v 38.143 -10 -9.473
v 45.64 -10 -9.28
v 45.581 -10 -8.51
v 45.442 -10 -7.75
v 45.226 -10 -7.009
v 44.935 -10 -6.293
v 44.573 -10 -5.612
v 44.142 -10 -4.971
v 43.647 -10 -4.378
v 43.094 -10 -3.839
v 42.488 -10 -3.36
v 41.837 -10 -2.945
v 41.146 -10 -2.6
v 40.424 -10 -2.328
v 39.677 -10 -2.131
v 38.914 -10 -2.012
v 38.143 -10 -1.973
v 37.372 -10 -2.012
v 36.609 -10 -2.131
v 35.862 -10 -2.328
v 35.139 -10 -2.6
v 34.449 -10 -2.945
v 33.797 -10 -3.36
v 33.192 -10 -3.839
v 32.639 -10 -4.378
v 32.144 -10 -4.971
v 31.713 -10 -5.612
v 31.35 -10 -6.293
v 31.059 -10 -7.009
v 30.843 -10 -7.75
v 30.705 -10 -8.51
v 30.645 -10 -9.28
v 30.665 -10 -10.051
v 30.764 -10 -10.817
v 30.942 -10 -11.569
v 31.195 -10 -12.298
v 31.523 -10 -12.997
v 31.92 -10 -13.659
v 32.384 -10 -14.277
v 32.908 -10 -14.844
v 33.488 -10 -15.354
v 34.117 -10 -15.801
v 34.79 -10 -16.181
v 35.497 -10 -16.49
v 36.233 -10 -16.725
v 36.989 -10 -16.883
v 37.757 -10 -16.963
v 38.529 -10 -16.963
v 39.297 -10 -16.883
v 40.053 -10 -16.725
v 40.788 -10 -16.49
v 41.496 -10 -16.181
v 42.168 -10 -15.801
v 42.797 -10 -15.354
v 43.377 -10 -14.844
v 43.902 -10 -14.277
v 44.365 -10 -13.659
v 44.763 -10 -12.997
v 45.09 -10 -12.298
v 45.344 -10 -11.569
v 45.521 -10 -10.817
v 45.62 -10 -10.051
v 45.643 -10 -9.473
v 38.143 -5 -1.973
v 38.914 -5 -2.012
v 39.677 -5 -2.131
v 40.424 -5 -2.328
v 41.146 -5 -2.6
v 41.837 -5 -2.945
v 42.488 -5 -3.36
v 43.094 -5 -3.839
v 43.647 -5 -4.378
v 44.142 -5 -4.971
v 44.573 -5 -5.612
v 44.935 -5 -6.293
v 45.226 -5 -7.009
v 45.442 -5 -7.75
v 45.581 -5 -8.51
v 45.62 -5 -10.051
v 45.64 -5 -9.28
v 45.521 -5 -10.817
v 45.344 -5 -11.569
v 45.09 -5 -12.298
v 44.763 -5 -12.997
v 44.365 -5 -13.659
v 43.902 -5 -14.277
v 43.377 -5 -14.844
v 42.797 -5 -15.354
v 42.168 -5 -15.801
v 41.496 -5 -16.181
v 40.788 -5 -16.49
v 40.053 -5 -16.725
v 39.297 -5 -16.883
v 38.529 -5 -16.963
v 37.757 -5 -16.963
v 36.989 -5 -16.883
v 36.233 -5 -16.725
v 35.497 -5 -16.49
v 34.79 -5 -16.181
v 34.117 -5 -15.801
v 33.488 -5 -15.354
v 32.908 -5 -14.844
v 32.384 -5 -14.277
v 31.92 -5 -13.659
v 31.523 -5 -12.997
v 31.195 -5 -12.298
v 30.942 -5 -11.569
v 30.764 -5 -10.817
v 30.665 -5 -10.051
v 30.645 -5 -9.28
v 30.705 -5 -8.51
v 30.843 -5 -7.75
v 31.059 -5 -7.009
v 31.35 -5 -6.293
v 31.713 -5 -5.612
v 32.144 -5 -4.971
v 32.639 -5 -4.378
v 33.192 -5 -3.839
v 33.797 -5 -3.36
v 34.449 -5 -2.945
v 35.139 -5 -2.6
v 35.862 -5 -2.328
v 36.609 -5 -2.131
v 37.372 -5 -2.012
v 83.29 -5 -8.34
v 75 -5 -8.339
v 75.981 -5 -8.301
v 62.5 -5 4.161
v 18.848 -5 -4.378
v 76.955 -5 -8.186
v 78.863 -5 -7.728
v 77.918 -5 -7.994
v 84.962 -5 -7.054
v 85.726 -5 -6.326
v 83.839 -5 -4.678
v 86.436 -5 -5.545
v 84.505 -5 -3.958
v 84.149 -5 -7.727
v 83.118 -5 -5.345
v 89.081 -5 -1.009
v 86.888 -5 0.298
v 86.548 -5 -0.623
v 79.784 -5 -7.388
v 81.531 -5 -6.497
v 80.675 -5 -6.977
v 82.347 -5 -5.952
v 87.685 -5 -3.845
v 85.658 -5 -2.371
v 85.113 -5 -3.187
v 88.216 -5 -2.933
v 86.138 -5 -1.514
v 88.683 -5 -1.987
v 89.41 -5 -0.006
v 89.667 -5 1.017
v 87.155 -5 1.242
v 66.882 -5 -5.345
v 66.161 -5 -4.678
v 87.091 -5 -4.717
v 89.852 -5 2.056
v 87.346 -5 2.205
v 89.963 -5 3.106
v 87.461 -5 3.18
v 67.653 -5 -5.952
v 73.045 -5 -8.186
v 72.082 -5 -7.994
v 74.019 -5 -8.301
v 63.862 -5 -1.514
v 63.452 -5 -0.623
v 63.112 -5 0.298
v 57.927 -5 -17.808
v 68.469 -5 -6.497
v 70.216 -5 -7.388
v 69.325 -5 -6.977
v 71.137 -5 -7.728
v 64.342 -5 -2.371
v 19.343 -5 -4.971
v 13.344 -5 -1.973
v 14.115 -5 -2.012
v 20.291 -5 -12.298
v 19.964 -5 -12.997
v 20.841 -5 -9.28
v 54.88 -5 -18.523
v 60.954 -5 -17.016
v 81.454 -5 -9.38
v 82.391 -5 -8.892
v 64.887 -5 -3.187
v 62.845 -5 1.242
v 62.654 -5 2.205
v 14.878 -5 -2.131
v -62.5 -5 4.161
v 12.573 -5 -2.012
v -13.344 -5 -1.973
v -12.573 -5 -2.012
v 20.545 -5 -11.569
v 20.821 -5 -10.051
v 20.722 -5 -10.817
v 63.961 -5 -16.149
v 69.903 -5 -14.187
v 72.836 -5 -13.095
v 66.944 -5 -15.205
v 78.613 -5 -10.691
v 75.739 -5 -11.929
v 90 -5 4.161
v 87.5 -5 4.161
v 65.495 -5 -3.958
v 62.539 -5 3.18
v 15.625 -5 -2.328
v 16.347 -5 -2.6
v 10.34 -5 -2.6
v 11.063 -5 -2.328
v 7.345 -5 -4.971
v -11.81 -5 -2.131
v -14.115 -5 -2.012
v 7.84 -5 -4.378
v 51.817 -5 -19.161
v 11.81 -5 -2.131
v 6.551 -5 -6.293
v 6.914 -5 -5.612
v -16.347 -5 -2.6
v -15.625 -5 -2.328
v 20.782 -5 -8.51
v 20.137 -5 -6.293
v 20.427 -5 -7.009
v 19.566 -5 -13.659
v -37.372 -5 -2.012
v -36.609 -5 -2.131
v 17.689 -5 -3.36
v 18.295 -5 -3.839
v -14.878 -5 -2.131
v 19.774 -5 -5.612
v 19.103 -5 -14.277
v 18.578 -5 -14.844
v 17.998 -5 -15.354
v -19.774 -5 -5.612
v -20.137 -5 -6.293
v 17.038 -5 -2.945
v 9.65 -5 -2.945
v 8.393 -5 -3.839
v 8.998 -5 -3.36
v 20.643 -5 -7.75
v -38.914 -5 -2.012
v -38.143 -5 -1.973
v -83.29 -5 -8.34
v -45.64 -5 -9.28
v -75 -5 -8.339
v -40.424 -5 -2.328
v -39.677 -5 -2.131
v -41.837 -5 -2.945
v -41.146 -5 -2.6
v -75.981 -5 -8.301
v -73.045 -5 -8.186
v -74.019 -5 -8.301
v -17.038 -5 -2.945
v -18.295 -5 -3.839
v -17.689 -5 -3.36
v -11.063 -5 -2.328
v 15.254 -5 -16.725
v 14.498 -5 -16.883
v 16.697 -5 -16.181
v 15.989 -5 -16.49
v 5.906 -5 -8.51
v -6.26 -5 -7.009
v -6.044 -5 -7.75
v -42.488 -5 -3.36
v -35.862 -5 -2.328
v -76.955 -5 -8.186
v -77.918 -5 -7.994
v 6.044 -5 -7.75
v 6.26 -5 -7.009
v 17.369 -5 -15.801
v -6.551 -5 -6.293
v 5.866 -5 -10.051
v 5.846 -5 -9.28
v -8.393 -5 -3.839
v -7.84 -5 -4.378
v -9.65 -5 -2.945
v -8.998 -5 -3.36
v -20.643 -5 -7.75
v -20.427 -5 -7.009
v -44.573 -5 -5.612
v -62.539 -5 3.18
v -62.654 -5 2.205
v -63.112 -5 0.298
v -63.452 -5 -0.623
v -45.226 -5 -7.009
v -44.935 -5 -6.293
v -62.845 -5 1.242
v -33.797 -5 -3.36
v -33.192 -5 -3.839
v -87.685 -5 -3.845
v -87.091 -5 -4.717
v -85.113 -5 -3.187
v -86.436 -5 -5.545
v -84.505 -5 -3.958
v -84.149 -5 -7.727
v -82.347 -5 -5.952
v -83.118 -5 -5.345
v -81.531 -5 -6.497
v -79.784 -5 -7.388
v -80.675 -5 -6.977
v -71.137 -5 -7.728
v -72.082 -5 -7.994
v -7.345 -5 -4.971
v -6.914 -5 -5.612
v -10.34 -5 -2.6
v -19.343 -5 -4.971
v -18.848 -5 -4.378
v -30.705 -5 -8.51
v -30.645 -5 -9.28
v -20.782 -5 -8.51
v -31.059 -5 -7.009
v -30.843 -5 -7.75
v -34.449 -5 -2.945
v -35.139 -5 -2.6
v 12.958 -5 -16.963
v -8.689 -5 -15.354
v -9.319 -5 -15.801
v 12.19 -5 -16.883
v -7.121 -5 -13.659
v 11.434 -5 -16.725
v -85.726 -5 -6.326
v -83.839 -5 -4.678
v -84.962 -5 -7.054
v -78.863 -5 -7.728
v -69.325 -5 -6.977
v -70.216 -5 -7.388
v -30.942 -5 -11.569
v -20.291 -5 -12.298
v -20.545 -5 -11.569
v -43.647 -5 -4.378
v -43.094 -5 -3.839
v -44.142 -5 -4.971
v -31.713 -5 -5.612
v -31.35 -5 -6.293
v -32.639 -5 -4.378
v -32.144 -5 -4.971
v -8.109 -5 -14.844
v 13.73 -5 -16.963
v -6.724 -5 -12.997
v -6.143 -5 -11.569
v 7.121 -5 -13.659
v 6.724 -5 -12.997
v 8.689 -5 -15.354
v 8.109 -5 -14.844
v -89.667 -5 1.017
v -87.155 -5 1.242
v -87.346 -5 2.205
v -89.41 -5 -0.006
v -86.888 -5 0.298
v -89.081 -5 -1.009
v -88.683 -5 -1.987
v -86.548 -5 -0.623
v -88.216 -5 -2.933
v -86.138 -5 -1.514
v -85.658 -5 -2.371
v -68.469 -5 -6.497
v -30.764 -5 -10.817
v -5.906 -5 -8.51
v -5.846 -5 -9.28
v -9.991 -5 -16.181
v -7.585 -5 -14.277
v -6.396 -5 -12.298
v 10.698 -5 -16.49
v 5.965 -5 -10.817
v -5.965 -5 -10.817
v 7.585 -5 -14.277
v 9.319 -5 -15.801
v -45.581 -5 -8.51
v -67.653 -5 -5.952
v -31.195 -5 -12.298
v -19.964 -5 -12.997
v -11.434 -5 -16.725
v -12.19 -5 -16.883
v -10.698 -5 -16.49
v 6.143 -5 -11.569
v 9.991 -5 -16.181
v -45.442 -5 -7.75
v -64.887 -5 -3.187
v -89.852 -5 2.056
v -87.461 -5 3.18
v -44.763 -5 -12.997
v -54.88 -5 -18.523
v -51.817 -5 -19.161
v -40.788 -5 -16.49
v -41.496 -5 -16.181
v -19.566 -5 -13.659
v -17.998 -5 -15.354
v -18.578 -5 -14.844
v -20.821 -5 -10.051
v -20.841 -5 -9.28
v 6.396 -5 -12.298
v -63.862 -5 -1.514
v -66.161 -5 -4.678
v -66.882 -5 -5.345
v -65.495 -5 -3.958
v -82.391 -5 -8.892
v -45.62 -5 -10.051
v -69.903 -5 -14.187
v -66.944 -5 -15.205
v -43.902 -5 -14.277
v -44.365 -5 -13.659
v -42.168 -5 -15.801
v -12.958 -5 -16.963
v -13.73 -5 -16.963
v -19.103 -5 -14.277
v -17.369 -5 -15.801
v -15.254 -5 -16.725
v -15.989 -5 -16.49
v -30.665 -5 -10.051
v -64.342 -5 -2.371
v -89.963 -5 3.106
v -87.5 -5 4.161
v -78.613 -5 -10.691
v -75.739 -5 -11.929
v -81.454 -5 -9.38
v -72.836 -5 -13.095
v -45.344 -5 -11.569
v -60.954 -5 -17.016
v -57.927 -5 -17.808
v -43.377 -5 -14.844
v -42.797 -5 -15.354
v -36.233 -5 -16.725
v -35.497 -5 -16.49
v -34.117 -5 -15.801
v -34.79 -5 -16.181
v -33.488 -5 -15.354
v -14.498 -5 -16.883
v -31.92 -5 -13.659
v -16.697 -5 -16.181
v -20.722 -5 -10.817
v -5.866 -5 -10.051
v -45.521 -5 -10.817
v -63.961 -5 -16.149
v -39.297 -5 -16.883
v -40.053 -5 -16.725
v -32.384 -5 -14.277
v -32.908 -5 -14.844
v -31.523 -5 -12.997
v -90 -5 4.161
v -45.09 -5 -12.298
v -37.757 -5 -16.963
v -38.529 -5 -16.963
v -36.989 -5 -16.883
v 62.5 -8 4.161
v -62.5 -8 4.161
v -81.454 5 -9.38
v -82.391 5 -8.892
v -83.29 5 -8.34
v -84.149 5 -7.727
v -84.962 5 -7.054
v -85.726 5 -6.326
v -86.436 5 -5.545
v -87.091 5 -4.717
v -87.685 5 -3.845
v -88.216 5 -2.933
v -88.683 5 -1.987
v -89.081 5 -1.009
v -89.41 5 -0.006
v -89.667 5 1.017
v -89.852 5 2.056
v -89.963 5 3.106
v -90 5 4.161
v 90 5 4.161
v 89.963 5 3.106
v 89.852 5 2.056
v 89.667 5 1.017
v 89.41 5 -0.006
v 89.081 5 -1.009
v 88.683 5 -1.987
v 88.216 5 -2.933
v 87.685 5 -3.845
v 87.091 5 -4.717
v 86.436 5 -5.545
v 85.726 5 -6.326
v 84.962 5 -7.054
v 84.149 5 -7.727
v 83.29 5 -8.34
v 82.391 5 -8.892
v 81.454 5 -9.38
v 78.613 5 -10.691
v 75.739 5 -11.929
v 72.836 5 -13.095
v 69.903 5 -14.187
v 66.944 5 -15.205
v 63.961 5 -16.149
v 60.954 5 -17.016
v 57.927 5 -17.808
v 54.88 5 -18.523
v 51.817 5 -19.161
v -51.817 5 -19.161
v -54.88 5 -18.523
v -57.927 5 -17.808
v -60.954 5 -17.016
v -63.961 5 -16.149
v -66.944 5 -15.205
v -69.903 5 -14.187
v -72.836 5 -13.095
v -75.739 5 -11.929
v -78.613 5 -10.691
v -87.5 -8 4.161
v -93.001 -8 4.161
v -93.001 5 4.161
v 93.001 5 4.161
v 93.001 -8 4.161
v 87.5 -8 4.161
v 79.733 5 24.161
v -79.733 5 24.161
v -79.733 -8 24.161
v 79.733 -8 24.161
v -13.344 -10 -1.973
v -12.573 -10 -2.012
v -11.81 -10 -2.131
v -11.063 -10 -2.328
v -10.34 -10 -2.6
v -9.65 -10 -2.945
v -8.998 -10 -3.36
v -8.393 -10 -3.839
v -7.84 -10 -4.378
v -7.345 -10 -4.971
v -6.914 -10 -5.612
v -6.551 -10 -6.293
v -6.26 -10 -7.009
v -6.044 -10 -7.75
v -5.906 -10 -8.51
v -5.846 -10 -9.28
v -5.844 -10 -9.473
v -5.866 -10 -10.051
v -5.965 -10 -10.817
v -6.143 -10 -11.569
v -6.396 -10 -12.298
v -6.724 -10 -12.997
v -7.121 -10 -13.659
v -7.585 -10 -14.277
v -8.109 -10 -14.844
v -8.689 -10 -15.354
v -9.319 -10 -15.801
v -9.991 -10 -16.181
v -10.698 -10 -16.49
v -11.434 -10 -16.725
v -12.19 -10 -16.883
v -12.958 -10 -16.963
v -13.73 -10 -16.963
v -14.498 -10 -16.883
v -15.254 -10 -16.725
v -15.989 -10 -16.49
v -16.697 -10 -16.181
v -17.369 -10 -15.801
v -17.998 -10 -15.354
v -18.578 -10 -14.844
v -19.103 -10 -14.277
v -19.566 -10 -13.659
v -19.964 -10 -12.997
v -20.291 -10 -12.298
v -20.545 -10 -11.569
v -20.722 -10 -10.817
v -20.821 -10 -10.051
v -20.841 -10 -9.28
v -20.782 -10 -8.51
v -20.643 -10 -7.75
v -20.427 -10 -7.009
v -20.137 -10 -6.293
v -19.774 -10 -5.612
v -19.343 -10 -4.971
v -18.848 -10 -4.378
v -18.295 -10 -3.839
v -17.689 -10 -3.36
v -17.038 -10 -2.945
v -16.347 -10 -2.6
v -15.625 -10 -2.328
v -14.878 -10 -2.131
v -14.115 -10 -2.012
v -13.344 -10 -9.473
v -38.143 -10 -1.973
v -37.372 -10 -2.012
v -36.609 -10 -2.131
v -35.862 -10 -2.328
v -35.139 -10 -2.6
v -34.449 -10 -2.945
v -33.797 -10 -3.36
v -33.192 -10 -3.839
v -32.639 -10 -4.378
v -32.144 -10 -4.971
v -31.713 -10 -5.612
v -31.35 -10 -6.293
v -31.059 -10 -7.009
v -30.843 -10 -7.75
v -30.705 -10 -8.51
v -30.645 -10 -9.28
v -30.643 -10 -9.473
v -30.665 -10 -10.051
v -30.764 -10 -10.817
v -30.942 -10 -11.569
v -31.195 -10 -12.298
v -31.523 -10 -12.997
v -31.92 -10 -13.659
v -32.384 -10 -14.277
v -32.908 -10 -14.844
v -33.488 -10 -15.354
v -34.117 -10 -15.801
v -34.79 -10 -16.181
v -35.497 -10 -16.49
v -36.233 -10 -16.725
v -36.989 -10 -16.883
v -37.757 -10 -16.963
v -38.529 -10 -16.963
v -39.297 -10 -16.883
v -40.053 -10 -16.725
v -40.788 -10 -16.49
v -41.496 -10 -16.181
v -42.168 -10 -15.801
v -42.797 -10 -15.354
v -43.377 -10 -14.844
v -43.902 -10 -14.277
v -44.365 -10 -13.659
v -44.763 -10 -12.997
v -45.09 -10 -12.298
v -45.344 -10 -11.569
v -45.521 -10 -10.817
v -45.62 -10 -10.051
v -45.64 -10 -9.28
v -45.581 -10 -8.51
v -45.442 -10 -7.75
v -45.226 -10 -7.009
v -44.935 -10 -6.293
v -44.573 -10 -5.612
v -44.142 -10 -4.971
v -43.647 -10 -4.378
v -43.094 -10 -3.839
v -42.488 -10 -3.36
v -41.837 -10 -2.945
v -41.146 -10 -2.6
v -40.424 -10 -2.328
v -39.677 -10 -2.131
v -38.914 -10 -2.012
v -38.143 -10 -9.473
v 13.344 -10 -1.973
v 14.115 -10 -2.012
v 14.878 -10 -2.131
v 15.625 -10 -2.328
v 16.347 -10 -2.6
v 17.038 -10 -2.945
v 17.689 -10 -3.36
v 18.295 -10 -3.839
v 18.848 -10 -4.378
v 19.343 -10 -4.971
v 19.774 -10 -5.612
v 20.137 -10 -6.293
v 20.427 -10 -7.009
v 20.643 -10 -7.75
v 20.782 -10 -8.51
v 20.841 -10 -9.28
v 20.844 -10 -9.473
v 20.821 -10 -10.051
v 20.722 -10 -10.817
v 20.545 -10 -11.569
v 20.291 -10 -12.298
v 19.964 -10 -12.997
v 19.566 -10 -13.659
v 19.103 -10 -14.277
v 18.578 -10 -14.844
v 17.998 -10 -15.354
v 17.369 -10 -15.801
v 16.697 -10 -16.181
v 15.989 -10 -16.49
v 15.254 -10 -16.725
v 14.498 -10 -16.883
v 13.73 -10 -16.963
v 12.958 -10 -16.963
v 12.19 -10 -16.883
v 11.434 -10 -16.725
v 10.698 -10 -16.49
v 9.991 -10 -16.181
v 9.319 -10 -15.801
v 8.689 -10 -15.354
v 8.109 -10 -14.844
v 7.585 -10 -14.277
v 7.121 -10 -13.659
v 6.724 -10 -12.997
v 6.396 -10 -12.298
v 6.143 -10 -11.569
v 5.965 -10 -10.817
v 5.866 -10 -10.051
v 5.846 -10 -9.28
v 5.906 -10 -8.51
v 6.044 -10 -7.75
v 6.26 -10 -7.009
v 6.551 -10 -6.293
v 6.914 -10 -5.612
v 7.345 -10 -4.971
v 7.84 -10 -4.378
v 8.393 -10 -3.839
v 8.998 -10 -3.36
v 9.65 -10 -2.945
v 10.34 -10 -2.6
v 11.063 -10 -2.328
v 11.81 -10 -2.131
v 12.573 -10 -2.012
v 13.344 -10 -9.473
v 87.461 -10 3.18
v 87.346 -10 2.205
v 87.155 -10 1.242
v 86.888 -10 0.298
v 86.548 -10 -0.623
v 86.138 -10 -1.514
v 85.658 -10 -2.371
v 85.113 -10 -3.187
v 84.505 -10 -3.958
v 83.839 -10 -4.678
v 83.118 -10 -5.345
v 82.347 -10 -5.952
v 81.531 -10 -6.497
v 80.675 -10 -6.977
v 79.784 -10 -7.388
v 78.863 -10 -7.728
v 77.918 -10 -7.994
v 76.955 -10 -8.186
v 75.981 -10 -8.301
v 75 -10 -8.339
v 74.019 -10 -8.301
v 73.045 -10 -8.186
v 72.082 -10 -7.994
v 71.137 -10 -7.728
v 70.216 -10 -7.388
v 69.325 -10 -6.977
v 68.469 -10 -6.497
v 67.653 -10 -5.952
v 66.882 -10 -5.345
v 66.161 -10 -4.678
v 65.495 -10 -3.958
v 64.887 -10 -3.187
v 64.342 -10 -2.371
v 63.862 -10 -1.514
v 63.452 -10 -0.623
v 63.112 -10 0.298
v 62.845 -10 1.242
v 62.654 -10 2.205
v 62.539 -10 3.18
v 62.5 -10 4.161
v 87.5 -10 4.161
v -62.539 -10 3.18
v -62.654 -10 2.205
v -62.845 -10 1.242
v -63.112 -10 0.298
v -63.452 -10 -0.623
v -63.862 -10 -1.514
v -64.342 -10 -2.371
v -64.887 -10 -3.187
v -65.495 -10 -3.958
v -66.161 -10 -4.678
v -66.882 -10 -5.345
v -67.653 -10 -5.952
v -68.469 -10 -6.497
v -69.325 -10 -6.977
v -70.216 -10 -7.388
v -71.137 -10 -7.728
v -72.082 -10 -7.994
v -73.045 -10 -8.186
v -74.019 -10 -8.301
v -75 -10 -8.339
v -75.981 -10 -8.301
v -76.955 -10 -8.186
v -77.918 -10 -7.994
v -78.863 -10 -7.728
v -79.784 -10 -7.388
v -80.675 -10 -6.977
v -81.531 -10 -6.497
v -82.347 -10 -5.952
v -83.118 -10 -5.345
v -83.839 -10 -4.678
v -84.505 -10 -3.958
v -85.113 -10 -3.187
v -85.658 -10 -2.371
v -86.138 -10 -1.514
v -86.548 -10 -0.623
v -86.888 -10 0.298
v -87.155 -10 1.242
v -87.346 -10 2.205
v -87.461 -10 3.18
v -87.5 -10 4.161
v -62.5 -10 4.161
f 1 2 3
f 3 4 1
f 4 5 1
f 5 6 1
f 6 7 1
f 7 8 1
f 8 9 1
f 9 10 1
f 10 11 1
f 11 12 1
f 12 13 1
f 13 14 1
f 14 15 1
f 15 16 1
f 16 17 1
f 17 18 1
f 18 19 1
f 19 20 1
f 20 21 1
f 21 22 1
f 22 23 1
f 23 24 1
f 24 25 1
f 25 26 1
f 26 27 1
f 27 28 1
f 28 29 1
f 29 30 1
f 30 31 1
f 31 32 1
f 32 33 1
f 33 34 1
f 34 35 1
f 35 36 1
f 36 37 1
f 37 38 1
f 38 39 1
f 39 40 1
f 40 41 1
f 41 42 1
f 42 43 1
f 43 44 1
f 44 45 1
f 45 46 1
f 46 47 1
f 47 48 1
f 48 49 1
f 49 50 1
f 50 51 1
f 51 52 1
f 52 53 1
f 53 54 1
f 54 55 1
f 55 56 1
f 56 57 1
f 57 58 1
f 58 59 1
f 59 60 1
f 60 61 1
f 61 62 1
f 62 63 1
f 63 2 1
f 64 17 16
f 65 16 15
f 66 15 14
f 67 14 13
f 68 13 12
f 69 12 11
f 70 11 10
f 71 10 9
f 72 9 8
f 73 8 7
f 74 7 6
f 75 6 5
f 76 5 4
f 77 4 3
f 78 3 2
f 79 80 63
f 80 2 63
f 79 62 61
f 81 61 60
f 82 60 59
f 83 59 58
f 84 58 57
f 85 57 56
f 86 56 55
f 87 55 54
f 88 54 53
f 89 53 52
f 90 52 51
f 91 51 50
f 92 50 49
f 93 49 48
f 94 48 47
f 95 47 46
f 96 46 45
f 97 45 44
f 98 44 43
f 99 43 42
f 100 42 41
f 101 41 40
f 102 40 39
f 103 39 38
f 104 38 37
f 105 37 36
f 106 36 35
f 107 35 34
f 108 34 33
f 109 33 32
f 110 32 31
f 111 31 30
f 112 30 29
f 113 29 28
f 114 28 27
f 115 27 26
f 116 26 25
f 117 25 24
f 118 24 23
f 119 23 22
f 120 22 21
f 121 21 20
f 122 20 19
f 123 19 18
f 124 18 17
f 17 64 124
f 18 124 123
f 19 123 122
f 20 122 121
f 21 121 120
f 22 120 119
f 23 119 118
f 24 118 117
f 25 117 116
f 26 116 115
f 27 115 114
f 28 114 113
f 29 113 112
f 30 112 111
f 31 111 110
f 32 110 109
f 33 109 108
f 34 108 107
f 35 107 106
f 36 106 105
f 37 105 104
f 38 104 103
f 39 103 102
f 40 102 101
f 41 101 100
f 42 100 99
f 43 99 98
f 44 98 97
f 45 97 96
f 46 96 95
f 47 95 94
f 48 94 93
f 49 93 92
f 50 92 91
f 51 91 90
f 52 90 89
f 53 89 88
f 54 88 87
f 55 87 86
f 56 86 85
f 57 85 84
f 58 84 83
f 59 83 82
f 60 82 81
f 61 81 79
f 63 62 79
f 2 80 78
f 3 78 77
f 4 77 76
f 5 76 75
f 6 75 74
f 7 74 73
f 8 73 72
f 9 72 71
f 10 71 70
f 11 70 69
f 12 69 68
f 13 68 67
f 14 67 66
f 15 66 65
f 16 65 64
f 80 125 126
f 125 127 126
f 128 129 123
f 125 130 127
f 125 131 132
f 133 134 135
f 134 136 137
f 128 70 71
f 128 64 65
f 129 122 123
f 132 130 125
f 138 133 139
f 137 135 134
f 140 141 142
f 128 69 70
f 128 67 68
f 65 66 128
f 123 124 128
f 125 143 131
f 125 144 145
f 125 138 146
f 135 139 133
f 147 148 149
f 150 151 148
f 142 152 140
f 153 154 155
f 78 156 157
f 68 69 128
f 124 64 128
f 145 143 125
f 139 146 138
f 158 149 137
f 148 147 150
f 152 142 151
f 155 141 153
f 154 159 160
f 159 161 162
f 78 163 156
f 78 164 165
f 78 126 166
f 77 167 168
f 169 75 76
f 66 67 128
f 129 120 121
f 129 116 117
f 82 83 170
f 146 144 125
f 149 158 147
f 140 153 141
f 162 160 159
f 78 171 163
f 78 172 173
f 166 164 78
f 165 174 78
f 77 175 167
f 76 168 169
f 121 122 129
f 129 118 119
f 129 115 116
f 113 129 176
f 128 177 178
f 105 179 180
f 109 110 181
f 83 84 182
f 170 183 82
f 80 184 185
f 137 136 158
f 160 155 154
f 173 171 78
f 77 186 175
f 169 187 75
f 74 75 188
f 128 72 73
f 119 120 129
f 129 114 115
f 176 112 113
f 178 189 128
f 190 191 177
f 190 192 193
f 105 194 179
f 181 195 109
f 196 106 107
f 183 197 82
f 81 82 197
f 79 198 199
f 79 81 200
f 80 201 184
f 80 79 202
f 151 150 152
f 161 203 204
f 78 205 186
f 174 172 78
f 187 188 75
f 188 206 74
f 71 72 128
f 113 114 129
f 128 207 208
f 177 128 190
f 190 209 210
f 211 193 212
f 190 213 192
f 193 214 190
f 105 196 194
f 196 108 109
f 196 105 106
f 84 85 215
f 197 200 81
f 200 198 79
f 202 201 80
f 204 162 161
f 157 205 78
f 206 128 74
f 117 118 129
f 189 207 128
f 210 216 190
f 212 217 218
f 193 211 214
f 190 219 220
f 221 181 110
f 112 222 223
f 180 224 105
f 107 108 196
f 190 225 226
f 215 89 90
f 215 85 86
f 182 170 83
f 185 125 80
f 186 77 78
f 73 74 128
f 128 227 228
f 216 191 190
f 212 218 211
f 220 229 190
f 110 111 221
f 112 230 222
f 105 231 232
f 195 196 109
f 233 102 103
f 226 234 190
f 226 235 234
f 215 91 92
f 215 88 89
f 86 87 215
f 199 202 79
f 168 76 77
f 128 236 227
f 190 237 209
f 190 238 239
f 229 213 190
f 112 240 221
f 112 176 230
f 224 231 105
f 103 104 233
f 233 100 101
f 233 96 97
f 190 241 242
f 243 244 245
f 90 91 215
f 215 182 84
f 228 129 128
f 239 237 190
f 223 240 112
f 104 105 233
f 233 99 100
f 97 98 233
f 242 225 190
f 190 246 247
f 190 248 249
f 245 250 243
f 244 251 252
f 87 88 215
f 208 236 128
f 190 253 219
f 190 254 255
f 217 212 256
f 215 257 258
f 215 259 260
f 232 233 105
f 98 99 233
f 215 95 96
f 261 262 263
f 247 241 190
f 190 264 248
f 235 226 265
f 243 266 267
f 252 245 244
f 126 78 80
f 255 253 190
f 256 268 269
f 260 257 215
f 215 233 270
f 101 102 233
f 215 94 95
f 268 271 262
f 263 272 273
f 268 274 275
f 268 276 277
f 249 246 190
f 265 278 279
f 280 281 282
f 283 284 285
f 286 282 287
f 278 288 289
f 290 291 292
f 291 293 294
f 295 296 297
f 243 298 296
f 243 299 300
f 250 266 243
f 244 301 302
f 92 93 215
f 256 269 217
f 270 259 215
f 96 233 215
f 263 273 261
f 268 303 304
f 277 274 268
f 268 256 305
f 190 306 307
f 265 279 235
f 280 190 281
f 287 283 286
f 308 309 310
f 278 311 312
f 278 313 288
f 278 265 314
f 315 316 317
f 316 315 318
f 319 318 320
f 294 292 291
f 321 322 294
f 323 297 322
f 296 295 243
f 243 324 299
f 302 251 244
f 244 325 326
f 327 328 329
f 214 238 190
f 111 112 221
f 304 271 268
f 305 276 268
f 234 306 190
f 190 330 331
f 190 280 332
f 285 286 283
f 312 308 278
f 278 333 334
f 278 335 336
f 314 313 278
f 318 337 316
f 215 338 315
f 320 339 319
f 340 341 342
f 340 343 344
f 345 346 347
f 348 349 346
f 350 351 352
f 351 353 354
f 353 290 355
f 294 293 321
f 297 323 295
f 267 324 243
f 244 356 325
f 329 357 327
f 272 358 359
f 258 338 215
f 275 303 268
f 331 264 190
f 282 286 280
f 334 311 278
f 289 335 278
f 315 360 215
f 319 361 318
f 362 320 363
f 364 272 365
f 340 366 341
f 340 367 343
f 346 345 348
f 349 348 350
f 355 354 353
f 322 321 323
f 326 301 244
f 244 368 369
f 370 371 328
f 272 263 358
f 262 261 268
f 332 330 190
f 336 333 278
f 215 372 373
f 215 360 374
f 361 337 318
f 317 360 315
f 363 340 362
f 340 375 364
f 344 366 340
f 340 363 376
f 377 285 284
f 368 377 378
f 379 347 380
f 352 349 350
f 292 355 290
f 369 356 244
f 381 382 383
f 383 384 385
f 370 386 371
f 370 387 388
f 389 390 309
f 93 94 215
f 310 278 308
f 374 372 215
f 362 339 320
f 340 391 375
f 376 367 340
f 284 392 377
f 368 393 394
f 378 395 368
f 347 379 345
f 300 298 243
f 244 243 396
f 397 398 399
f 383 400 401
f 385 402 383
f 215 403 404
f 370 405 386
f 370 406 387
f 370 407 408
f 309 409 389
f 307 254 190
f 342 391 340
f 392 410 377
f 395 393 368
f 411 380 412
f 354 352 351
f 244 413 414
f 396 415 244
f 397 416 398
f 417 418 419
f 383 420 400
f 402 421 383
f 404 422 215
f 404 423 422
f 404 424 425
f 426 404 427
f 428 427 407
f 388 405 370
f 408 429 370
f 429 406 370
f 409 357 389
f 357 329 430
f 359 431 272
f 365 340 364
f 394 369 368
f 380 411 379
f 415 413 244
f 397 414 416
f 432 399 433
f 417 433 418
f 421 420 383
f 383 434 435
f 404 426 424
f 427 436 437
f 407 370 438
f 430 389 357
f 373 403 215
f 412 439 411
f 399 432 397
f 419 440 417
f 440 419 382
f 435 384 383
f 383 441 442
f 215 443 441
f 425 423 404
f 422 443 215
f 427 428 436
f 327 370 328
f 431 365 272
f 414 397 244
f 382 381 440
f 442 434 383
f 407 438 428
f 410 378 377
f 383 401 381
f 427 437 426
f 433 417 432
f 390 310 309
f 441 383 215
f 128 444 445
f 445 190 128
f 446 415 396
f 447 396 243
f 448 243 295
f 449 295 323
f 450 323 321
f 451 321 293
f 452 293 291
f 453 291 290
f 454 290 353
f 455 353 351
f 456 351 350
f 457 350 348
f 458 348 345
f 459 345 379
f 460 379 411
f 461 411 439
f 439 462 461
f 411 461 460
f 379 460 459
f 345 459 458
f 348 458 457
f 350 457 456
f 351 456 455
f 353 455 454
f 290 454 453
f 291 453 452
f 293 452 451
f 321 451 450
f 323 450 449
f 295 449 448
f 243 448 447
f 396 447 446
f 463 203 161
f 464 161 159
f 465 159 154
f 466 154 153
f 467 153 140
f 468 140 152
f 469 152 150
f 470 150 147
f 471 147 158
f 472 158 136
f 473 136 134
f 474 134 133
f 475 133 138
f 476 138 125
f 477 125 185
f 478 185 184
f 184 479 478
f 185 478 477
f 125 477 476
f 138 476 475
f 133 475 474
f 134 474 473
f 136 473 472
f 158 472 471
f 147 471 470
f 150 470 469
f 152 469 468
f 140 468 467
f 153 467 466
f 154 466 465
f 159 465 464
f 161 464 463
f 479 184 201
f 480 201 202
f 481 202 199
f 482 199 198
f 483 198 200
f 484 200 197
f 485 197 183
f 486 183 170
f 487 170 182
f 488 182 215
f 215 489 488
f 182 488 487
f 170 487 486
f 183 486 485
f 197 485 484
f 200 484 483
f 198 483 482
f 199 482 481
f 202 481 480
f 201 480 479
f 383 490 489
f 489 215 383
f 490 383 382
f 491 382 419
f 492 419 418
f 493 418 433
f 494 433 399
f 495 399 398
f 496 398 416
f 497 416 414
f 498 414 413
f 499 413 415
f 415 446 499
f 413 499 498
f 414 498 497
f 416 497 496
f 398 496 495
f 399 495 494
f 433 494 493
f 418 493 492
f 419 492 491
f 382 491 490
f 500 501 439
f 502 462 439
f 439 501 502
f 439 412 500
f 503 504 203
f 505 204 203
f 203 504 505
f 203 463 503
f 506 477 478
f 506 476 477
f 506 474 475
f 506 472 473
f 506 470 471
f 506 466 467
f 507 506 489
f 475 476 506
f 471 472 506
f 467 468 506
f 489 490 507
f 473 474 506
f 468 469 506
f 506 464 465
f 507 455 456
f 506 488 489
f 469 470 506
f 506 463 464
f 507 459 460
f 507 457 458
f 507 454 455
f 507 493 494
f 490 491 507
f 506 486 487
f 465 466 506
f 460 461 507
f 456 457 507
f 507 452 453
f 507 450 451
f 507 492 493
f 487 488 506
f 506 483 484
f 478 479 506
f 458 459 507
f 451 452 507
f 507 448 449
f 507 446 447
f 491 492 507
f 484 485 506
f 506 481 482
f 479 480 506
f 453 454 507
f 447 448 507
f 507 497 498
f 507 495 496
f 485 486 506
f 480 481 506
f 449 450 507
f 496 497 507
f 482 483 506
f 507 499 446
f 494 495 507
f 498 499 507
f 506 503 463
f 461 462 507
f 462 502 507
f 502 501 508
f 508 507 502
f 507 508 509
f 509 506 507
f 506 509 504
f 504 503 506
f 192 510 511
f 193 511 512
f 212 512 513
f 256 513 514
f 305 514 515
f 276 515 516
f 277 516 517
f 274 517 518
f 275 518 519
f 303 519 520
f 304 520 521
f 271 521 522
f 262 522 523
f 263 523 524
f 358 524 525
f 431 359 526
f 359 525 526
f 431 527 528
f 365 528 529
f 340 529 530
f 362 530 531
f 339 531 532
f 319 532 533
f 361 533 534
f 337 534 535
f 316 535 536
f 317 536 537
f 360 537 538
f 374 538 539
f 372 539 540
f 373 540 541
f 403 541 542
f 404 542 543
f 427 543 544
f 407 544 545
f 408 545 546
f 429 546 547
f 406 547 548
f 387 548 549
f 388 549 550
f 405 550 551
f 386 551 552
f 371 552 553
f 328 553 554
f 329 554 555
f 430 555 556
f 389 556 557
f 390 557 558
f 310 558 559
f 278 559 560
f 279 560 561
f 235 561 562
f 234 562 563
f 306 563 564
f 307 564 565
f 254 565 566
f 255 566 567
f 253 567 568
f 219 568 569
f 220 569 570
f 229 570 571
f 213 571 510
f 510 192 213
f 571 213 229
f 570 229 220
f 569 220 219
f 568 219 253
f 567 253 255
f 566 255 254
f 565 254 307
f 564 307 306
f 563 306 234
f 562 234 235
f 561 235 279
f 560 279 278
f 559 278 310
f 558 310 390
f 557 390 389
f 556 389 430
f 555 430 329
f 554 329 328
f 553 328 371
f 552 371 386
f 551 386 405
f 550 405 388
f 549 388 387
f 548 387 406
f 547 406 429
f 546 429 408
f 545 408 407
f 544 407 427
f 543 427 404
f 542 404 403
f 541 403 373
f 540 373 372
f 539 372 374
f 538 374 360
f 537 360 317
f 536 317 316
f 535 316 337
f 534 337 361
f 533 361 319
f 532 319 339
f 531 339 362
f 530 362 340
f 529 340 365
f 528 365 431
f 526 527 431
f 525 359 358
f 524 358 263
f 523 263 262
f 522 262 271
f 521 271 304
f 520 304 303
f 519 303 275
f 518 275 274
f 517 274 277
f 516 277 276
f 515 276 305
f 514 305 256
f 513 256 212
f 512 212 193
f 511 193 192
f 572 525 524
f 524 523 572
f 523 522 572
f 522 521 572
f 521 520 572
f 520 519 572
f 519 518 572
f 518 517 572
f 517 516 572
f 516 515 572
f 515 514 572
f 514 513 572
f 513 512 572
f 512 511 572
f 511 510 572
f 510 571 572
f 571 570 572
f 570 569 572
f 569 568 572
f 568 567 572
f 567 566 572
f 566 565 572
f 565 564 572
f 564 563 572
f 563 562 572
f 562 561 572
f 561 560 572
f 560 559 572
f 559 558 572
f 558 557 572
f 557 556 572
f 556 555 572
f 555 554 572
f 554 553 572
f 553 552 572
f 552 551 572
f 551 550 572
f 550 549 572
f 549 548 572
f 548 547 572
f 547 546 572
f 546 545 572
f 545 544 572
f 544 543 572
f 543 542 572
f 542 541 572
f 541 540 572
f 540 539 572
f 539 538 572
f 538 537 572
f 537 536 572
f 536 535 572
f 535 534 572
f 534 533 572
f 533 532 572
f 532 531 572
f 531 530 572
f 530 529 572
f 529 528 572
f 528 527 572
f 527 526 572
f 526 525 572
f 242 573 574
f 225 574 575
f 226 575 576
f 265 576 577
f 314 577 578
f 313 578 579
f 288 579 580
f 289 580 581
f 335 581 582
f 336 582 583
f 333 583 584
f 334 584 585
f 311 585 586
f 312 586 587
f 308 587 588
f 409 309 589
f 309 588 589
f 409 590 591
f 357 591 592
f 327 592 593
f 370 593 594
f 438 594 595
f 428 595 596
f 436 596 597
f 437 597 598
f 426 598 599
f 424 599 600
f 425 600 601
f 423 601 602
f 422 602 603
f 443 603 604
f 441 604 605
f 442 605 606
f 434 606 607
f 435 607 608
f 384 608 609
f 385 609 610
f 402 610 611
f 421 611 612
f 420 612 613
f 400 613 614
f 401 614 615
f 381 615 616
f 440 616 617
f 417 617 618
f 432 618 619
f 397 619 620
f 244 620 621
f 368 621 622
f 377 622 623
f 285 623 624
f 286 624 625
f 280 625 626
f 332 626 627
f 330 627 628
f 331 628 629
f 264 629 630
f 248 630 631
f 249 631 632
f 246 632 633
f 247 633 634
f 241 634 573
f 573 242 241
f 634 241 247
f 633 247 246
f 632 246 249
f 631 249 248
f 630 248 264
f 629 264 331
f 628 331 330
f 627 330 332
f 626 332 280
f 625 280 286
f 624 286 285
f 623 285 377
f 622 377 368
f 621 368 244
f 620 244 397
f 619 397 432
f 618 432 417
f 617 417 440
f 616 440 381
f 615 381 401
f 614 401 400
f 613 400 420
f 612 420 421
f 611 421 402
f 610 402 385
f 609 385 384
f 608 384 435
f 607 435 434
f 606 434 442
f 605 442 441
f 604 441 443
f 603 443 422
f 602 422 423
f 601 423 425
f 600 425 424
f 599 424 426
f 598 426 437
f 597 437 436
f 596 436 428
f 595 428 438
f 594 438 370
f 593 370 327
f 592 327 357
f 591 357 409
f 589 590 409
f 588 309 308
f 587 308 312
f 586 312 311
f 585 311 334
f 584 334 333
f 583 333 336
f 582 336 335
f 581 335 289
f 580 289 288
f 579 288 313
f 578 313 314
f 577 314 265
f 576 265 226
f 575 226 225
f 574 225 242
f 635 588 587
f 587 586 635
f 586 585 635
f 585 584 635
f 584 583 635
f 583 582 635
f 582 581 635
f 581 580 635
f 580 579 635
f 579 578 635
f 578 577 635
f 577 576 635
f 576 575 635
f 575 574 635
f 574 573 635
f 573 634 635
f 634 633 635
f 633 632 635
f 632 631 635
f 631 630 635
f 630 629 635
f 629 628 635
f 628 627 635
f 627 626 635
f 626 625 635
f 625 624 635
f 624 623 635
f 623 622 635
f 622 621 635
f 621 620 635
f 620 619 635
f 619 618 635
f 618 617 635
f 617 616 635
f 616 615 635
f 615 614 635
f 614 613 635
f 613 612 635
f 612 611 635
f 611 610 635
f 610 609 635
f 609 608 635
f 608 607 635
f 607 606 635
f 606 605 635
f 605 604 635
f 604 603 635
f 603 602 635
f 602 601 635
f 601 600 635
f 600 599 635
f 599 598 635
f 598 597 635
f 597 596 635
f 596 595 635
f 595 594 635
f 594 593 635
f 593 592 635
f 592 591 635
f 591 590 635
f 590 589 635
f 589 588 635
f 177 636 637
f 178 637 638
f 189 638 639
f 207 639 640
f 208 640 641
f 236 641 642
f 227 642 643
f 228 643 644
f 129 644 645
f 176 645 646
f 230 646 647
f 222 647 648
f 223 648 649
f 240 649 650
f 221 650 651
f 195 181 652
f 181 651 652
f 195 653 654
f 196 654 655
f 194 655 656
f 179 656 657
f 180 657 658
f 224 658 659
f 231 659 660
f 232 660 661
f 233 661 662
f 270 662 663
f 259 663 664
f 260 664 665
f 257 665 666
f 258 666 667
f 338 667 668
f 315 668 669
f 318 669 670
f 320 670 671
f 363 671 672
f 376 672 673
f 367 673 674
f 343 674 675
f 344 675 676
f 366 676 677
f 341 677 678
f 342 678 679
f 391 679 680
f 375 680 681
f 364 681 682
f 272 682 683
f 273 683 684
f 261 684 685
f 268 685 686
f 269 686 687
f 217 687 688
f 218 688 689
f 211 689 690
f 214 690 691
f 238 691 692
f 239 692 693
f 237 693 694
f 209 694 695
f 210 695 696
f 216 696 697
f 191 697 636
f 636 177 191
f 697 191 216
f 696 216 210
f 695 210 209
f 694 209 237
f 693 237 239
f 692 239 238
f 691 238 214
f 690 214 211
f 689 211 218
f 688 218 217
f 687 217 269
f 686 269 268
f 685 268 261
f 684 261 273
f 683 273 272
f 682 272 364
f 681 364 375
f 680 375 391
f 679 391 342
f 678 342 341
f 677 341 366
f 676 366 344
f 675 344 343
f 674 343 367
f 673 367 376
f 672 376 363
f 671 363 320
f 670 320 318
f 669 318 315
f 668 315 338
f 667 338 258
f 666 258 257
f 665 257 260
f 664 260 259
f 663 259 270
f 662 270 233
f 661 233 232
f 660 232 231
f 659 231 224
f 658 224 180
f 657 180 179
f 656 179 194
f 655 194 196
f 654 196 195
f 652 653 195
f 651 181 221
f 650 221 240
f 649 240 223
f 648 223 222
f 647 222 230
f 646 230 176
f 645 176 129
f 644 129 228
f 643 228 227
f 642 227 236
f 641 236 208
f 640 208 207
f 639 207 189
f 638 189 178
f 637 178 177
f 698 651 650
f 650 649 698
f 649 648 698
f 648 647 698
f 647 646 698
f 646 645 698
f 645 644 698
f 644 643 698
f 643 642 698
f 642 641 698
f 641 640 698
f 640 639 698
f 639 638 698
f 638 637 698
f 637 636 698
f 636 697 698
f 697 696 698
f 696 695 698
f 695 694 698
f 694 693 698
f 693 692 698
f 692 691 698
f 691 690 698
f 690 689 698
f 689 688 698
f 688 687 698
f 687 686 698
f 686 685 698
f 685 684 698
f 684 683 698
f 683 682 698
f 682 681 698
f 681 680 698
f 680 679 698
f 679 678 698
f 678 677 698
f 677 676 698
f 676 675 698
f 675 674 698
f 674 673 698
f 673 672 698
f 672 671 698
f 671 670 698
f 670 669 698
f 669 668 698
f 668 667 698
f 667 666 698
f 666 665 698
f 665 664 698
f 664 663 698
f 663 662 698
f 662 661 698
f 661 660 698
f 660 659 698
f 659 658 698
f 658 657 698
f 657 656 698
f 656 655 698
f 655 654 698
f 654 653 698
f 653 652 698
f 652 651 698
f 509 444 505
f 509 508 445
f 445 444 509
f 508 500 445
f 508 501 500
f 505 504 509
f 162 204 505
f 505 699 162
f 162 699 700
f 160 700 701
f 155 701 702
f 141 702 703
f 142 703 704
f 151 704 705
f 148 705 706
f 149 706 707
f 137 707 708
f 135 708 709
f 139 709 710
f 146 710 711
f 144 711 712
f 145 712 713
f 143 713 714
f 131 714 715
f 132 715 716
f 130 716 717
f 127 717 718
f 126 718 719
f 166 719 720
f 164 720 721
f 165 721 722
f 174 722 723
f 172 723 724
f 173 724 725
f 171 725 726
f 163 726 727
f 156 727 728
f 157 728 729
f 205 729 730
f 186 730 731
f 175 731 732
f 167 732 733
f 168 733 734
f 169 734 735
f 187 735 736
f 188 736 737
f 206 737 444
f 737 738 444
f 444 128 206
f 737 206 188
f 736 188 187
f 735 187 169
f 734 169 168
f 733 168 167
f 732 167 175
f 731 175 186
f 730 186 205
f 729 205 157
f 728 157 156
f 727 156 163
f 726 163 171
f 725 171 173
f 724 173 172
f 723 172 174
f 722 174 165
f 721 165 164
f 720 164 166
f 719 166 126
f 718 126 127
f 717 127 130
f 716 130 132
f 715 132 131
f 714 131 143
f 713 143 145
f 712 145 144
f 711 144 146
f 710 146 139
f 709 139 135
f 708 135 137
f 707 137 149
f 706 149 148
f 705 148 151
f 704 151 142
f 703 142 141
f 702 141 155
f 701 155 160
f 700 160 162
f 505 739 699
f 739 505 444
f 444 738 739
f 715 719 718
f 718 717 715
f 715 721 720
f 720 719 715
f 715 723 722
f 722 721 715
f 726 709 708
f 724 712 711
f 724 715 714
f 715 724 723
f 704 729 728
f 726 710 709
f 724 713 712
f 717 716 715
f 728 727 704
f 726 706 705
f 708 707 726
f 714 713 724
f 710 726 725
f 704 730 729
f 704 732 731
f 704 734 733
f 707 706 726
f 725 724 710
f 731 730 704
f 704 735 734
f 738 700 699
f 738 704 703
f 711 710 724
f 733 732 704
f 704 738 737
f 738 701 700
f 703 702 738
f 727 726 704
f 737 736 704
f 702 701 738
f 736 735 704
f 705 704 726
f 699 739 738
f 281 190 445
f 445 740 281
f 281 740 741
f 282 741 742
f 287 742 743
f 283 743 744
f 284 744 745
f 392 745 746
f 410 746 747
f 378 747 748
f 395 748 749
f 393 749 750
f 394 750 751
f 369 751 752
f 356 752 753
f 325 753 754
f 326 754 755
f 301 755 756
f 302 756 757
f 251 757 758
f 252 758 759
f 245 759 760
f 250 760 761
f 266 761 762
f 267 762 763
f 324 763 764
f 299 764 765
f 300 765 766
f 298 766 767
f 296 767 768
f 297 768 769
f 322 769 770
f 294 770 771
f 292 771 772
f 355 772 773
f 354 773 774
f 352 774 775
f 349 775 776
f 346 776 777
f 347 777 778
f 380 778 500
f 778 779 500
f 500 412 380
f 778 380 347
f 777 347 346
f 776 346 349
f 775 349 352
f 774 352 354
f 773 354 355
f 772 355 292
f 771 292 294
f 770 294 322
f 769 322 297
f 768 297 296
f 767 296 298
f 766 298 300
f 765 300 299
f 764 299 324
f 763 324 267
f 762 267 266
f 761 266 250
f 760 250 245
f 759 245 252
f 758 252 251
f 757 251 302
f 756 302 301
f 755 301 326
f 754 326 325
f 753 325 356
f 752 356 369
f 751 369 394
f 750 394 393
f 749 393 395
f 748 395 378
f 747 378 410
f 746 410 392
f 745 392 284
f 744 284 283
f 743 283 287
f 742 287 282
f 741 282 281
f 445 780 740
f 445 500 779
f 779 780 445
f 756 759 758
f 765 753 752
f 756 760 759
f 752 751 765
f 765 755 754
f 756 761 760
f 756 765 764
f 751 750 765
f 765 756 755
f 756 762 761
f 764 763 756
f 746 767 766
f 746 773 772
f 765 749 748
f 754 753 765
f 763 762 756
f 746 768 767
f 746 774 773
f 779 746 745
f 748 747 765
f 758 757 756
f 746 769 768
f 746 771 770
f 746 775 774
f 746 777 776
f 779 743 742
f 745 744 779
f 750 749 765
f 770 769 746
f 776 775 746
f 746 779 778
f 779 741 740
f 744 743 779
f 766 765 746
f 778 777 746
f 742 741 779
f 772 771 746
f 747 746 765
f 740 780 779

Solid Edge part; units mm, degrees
sketch "Sketch1" plane through (0, 0, 0) normal (0, -1, 0) x (1, 0, 0)
  arc A0 (87.9904, -3.3394) -> (81.4545, -9.3797) centre (75, 4.1606) cw
  arc A1 (81.4545, -9.3797) -> (51.8166, -19.1606) centre (28.049, 102.6551) cw
  line L0 (-51.8166, -19.1606) -> (51.8166, -19.1606)
  arc A2 (-81.4545, -9.3797) -> (-51.8166, -19.1606) centre (-28.049, 102.6551) ccw
  arc A3 (-73.8916, 19.1195) -> (-81.4545, -9.3797) centre (-75, 4.1606) ccw
  arc A4 (73.8916, 19.1195) -> (-73.8916, 19.1195) centre (0, 1016.3858) cw
  arc A5 (73.8916, 19.1195) -> (89.9997, 4.062) centre (75, 4.1606) cw
  arc A6 (87.9904, -3.3394) -> (89.9997, 4.062) centre (75, 4.1606) ccw
extrude "Protrusion1" add sketch "Sketch1" along normal mid plane 10
sketch "Sketch2" plane through (0, 0, 0) normal (0, -1, 0) x (1, 0, 0)
  circle A0 centre (-75, 4.1606) radius 12.5
  circle A1 centre (-38.1427, -9.4726) radius 7.5
  circle A2 centre (-13.3438, -9.4726) radius 7.5
  circle A3 centre (13.3438, -9.4726) radius 7.5
  circle A4 centre (38.1427, -9.4726) radius 7.5
  circle A5 centre (75, 4.1606) radius 12.5
extrude "ExtrudedProtrusion_2" add sketch "Sketch2" along normal blind 10
sketch "Sketch3" plane through (-75, -10, 4.1606) normal (0, -1, 0) x (1, 0, 0)
  arc A0 (162.5, 0) -> (137.5, 0) centre (150, 0) ccw
  line L0 (12.5, 0) -> (137.5, 0)
  arc A1 (-12.5, 0) -> (12.5, 0) centre (0, 0) cw
  line L1 (-12.5, 0) -> (-18.0005, 0)
  line L2 (-18.0005, 0) -> (-4.7328, 20)
  line L3 (0, 20) -> (-4.7328, 20)
  line L4 (150, 20) -> (0, 20)
  line L5 (150, 20) -> (154.7328, 20)
  line L6 (168.0005, 0) -> (154.7328, 20)
  line L7 (162.5, 0) -> (168.0005, 0)
extrude "Protrusion2" add sketch "Sketch3" against normal up to vertex (15 mm away)
sketch "Sketch4" plane through (-75, -10, 4.1606) normal (0, -1, 0) x (1, 0, 0)
  line L0 (0, 0) -> (150, 0)
  line L1 (150, 0) -> (168.0005, 0)
  line L2 (168.0005, 0) -> (154.7328, 20)
  line L3 (150, 20) -> (154.7328, 20)
  line L4 (150, 20) -> (0, 20)
  line L5 (0, 20) -> (-4.7328, 20)
  line L6 (-18.0005, 0) -> (-4.7328, 20)
  line L7 (0, 0) -> (-18.0005, 0)
extrude "ExtrudedCutout_2" cut sketch "Sketch4" against normal blind 2
